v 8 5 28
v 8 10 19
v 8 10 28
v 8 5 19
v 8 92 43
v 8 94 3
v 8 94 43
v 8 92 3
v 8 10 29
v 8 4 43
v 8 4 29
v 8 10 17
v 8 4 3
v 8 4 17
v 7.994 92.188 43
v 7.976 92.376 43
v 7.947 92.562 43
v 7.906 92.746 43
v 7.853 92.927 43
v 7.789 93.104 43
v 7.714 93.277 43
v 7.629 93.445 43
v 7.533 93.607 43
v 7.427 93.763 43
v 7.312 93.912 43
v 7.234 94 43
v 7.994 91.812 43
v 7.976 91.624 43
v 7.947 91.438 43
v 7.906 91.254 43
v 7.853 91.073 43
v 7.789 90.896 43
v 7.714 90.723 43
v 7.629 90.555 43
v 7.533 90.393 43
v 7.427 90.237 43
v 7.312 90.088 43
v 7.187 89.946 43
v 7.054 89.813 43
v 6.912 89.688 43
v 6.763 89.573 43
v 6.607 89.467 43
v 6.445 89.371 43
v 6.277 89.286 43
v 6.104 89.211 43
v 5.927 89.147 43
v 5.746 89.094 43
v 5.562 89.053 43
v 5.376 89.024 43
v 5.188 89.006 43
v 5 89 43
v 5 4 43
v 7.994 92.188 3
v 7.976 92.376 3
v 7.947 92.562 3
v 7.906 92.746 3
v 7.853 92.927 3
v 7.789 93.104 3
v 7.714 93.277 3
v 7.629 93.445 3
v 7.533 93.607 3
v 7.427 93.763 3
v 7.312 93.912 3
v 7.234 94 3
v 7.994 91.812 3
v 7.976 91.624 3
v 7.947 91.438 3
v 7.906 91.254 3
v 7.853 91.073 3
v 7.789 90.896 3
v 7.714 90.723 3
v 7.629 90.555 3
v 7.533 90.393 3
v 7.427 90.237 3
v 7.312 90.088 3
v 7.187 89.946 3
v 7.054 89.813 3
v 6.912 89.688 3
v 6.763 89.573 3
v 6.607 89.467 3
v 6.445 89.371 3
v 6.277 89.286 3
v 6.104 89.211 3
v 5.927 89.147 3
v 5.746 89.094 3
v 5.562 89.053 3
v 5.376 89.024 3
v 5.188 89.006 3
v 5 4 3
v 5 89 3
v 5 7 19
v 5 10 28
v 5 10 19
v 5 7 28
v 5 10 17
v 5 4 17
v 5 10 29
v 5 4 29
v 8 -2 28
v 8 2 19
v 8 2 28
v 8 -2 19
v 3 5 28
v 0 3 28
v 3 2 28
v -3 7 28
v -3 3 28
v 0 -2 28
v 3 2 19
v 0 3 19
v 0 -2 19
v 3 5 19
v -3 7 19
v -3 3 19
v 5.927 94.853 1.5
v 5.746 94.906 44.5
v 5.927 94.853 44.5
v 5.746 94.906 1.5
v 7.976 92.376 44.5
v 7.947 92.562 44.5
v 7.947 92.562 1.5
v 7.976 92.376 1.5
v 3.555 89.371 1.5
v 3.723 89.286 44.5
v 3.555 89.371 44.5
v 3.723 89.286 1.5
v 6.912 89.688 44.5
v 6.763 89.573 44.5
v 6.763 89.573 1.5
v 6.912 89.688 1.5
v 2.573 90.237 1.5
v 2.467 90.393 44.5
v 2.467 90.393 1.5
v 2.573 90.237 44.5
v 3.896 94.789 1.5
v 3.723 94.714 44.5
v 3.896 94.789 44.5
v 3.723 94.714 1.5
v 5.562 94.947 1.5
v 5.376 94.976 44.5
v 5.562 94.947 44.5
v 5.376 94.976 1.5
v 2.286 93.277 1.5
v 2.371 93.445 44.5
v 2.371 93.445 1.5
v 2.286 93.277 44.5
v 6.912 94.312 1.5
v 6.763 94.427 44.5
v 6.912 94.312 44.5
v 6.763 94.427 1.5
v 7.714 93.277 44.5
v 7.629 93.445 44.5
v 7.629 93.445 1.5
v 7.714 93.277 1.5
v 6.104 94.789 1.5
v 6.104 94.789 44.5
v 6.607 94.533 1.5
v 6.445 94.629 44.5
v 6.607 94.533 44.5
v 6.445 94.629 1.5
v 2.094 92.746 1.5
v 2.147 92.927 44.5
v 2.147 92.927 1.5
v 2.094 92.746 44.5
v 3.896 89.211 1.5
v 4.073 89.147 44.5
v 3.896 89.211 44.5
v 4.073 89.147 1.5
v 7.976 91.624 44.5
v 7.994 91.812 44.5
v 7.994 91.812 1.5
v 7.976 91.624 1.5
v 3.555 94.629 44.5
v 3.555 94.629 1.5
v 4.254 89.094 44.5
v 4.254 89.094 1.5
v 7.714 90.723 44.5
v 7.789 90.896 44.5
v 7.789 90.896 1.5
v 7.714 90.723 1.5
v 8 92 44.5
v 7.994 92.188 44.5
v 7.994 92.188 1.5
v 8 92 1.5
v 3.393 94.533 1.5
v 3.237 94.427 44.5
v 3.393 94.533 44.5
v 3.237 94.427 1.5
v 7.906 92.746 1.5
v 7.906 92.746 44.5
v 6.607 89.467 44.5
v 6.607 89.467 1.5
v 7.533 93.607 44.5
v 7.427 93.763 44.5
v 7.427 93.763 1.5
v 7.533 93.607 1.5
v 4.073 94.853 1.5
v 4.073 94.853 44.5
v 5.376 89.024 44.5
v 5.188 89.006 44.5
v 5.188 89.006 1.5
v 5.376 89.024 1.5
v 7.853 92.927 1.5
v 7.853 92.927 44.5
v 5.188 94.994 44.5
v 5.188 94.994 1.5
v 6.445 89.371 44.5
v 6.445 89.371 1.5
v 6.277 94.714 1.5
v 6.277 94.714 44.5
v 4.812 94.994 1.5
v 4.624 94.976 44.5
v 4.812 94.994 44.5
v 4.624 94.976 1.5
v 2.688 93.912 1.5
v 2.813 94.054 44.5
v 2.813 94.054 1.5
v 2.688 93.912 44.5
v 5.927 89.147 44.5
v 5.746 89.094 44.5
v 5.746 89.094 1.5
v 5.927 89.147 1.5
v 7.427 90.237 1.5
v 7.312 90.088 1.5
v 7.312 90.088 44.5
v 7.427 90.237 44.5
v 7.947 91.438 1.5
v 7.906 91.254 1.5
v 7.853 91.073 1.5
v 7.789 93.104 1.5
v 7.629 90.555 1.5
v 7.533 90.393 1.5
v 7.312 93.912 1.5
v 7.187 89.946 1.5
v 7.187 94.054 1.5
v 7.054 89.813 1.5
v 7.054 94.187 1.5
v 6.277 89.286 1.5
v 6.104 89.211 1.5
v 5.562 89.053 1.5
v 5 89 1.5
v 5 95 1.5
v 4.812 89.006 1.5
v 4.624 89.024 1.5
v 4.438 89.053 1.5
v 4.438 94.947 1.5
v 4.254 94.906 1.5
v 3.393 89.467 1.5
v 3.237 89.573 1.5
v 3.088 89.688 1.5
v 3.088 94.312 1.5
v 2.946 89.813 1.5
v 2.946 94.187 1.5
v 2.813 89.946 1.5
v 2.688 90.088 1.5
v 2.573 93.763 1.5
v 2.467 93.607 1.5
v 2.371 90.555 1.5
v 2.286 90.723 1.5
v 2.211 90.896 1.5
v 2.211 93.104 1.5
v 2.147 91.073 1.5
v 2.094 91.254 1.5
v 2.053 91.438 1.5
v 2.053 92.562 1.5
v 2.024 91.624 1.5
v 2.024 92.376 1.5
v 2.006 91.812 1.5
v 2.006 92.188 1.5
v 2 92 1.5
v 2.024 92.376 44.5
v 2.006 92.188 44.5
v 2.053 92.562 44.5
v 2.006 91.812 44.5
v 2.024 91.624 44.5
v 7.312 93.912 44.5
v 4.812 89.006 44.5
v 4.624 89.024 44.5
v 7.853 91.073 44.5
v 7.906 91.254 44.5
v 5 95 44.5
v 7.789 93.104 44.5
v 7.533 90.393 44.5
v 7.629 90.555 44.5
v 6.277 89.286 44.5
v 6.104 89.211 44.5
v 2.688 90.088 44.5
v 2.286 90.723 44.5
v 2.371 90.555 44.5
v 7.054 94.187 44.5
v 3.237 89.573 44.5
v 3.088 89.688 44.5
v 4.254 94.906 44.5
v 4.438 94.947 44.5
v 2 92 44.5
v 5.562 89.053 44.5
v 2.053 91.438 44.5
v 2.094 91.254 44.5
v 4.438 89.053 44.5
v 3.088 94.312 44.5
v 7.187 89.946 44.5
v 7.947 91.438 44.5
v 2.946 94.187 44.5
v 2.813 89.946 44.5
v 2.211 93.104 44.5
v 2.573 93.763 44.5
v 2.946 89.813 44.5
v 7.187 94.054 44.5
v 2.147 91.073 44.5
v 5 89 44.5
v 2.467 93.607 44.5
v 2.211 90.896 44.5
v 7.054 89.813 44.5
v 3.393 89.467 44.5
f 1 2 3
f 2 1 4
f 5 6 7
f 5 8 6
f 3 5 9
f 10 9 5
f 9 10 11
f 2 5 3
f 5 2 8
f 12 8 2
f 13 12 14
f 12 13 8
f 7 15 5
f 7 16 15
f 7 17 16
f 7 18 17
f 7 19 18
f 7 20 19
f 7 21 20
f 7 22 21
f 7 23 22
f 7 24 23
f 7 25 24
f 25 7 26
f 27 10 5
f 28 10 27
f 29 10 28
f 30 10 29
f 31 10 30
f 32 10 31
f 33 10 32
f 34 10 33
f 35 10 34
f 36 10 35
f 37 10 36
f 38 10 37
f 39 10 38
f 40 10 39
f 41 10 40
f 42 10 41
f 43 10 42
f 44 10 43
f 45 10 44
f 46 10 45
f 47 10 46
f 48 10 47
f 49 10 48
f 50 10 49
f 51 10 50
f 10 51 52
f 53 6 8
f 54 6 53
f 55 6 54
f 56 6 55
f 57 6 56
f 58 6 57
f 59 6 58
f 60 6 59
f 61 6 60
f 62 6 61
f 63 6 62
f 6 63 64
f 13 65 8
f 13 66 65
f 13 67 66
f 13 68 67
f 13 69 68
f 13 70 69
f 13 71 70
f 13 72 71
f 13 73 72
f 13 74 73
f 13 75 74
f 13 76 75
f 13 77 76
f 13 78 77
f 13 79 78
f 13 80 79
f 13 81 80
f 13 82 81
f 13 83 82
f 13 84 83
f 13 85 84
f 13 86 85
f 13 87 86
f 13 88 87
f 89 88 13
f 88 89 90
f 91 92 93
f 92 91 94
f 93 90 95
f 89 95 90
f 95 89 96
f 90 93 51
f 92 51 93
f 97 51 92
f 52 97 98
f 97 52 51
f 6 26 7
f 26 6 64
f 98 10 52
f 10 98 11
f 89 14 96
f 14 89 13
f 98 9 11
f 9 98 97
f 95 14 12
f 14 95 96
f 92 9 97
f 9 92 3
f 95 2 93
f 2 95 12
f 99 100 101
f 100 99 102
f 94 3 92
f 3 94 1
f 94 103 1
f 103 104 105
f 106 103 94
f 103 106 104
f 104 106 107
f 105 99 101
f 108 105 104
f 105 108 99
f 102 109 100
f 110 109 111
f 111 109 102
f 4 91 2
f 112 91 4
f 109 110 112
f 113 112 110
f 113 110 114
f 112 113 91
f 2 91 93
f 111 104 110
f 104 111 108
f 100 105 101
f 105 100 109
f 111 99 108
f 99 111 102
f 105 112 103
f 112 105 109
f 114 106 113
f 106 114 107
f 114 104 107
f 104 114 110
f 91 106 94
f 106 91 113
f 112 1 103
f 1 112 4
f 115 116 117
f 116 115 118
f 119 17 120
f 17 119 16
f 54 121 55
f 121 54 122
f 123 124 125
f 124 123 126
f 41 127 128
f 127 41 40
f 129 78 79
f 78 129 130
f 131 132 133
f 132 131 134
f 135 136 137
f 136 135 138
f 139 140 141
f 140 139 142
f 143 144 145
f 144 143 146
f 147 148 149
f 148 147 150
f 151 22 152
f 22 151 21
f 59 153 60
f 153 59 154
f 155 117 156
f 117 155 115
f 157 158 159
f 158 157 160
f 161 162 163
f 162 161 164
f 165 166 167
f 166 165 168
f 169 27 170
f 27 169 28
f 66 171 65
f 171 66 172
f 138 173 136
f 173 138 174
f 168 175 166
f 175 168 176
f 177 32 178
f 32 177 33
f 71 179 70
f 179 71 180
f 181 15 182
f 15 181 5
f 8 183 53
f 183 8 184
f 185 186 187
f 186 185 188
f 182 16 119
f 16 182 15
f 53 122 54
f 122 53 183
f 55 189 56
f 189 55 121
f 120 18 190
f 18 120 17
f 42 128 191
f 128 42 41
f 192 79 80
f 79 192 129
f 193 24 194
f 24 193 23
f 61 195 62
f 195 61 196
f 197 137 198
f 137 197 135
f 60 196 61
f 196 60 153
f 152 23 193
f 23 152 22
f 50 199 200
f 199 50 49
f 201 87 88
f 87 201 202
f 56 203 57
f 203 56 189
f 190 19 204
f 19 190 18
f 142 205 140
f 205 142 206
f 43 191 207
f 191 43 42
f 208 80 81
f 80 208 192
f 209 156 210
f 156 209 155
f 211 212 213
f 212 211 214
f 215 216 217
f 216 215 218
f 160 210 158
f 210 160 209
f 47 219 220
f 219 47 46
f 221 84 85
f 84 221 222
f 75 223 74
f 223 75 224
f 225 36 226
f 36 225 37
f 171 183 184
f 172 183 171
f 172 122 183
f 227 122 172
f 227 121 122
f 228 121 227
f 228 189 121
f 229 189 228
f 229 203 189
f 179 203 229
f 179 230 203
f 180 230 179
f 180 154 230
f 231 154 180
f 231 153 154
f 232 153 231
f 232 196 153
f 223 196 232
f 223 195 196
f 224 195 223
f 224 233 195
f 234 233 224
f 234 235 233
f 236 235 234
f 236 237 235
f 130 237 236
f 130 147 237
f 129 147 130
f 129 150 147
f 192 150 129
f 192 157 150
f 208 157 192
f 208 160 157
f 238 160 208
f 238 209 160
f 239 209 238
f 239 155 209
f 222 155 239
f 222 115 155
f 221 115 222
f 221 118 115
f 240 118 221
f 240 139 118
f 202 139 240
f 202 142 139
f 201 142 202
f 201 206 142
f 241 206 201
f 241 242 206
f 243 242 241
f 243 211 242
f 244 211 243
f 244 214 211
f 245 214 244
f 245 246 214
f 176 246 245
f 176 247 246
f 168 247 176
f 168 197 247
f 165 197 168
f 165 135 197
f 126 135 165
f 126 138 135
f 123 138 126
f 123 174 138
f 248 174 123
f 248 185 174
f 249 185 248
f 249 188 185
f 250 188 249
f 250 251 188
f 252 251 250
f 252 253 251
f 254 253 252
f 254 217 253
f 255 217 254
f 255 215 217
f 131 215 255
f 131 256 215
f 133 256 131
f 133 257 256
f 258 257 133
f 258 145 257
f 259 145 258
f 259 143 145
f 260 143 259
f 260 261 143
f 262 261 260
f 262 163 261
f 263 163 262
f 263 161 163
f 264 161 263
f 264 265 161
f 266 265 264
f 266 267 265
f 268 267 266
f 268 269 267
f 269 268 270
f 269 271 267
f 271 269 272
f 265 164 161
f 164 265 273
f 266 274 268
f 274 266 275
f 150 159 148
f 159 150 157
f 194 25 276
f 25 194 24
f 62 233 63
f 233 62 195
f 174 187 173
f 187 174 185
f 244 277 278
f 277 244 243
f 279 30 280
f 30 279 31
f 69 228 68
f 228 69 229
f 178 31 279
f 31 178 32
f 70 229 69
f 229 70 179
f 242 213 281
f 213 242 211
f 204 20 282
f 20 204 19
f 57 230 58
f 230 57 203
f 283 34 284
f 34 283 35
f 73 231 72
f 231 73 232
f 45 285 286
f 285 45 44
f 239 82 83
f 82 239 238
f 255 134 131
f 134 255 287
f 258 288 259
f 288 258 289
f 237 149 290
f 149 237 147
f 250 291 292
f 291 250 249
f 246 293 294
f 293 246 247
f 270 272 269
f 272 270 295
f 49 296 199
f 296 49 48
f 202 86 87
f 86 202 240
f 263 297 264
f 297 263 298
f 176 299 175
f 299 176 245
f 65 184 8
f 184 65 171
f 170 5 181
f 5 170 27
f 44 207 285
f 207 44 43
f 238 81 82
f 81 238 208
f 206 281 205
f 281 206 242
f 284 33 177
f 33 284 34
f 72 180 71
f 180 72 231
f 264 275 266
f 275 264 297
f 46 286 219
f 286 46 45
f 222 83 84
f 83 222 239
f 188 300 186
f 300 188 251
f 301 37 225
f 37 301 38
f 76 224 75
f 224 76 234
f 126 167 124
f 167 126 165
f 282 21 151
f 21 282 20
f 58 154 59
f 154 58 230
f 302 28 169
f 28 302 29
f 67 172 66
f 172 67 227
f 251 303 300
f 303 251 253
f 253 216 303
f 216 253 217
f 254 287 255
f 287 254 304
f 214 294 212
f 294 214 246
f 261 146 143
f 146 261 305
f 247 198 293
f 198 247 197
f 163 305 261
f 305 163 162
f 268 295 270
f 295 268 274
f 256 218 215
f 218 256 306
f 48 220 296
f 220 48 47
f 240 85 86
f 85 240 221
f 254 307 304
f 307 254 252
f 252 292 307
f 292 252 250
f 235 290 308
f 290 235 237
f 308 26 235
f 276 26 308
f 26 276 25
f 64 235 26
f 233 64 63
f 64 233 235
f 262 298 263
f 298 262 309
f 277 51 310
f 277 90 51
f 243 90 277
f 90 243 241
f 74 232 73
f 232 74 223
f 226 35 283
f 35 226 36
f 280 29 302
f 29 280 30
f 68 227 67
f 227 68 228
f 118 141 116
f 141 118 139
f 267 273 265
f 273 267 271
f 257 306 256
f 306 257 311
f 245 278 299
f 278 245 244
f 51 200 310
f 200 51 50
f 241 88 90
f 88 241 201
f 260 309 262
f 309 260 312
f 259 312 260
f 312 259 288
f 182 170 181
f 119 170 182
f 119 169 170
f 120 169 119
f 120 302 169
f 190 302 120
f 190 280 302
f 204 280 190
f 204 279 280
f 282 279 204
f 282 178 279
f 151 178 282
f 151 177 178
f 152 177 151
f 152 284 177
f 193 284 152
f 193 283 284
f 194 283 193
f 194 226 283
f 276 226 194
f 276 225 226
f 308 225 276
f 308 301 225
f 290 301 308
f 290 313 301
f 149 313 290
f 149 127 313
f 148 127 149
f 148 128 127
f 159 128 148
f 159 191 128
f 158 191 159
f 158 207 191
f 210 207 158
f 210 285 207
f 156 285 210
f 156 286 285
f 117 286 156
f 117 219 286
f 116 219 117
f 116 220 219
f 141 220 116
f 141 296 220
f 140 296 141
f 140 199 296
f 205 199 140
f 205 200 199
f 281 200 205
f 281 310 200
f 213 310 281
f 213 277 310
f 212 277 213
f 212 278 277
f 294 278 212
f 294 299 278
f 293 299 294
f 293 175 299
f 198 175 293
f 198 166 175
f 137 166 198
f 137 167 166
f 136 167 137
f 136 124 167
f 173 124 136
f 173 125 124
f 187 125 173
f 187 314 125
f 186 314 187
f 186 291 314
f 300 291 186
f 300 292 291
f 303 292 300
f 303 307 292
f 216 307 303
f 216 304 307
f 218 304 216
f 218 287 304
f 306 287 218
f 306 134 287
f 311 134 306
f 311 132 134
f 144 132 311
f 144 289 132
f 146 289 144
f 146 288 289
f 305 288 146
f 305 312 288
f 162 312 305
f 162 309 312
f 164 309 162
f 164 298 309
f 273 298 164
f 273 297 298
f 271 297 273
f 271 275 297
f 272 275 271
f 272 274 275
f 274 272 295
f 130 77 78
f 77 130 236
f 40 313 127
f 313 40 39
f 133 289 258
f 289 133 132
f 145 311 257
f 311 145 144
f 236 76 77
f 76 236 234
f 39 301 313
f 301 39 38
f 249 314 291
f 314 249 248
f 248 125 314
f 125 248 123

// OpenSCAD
$fn = 100;

module remove() {
  translate([0, 0, 29]) {
    color([1,1,0]) cube([8, 2, 20]);
  }

  translate([0, 0, -2]) {
    color([0,1,1]) cube([8, 2, 20]);
  }
}

module stuff(
    depth=5,
    battery_height = 30 + 5 * 2,
    fan_radius = 60,
    oset = 1,
) {
  // door knob
  translate([0, -2, 19]) {
    color([1,0,0]) cube([8, 4, 9]);
  }

  // door knob connection
  translate([0, 0, 19]) {
    color([0,1,0]) cube([3, 6, 9]);
  }

  translate([-3, 3, 19]) {
    color([0,0,1]) cube([3, 3, 9]);
  }
  // door knob connection 2
  translate([-3, 5, 19]) {
    cube([8, 2, 9]);
  }

  // door knob connection 3
  translate([5, 5, 19]) {
    cube([3, 5, 9]);
  }

  // body
  difference() {
    translate([5,4,3]) {
      cube([3, 100 - depth - 5, battery_height ]);
    }
    translate([0, 0, 17]) {
      cube([10, 10, 12]);
    }
  }


  // joint
  translate([5,100 - 8,1.5]) {
    cylinder(h=battery_height + 3, r=3);
  }
}

// stuff();
module battery_door(
    depth=5,
    battery_height = 30 + 5 * 2,
    fan_radius = 60,
    oset = 1,
) {
  difference() {
    stuff();

    remove();
  }
}
//
battery_door();
// remove();
